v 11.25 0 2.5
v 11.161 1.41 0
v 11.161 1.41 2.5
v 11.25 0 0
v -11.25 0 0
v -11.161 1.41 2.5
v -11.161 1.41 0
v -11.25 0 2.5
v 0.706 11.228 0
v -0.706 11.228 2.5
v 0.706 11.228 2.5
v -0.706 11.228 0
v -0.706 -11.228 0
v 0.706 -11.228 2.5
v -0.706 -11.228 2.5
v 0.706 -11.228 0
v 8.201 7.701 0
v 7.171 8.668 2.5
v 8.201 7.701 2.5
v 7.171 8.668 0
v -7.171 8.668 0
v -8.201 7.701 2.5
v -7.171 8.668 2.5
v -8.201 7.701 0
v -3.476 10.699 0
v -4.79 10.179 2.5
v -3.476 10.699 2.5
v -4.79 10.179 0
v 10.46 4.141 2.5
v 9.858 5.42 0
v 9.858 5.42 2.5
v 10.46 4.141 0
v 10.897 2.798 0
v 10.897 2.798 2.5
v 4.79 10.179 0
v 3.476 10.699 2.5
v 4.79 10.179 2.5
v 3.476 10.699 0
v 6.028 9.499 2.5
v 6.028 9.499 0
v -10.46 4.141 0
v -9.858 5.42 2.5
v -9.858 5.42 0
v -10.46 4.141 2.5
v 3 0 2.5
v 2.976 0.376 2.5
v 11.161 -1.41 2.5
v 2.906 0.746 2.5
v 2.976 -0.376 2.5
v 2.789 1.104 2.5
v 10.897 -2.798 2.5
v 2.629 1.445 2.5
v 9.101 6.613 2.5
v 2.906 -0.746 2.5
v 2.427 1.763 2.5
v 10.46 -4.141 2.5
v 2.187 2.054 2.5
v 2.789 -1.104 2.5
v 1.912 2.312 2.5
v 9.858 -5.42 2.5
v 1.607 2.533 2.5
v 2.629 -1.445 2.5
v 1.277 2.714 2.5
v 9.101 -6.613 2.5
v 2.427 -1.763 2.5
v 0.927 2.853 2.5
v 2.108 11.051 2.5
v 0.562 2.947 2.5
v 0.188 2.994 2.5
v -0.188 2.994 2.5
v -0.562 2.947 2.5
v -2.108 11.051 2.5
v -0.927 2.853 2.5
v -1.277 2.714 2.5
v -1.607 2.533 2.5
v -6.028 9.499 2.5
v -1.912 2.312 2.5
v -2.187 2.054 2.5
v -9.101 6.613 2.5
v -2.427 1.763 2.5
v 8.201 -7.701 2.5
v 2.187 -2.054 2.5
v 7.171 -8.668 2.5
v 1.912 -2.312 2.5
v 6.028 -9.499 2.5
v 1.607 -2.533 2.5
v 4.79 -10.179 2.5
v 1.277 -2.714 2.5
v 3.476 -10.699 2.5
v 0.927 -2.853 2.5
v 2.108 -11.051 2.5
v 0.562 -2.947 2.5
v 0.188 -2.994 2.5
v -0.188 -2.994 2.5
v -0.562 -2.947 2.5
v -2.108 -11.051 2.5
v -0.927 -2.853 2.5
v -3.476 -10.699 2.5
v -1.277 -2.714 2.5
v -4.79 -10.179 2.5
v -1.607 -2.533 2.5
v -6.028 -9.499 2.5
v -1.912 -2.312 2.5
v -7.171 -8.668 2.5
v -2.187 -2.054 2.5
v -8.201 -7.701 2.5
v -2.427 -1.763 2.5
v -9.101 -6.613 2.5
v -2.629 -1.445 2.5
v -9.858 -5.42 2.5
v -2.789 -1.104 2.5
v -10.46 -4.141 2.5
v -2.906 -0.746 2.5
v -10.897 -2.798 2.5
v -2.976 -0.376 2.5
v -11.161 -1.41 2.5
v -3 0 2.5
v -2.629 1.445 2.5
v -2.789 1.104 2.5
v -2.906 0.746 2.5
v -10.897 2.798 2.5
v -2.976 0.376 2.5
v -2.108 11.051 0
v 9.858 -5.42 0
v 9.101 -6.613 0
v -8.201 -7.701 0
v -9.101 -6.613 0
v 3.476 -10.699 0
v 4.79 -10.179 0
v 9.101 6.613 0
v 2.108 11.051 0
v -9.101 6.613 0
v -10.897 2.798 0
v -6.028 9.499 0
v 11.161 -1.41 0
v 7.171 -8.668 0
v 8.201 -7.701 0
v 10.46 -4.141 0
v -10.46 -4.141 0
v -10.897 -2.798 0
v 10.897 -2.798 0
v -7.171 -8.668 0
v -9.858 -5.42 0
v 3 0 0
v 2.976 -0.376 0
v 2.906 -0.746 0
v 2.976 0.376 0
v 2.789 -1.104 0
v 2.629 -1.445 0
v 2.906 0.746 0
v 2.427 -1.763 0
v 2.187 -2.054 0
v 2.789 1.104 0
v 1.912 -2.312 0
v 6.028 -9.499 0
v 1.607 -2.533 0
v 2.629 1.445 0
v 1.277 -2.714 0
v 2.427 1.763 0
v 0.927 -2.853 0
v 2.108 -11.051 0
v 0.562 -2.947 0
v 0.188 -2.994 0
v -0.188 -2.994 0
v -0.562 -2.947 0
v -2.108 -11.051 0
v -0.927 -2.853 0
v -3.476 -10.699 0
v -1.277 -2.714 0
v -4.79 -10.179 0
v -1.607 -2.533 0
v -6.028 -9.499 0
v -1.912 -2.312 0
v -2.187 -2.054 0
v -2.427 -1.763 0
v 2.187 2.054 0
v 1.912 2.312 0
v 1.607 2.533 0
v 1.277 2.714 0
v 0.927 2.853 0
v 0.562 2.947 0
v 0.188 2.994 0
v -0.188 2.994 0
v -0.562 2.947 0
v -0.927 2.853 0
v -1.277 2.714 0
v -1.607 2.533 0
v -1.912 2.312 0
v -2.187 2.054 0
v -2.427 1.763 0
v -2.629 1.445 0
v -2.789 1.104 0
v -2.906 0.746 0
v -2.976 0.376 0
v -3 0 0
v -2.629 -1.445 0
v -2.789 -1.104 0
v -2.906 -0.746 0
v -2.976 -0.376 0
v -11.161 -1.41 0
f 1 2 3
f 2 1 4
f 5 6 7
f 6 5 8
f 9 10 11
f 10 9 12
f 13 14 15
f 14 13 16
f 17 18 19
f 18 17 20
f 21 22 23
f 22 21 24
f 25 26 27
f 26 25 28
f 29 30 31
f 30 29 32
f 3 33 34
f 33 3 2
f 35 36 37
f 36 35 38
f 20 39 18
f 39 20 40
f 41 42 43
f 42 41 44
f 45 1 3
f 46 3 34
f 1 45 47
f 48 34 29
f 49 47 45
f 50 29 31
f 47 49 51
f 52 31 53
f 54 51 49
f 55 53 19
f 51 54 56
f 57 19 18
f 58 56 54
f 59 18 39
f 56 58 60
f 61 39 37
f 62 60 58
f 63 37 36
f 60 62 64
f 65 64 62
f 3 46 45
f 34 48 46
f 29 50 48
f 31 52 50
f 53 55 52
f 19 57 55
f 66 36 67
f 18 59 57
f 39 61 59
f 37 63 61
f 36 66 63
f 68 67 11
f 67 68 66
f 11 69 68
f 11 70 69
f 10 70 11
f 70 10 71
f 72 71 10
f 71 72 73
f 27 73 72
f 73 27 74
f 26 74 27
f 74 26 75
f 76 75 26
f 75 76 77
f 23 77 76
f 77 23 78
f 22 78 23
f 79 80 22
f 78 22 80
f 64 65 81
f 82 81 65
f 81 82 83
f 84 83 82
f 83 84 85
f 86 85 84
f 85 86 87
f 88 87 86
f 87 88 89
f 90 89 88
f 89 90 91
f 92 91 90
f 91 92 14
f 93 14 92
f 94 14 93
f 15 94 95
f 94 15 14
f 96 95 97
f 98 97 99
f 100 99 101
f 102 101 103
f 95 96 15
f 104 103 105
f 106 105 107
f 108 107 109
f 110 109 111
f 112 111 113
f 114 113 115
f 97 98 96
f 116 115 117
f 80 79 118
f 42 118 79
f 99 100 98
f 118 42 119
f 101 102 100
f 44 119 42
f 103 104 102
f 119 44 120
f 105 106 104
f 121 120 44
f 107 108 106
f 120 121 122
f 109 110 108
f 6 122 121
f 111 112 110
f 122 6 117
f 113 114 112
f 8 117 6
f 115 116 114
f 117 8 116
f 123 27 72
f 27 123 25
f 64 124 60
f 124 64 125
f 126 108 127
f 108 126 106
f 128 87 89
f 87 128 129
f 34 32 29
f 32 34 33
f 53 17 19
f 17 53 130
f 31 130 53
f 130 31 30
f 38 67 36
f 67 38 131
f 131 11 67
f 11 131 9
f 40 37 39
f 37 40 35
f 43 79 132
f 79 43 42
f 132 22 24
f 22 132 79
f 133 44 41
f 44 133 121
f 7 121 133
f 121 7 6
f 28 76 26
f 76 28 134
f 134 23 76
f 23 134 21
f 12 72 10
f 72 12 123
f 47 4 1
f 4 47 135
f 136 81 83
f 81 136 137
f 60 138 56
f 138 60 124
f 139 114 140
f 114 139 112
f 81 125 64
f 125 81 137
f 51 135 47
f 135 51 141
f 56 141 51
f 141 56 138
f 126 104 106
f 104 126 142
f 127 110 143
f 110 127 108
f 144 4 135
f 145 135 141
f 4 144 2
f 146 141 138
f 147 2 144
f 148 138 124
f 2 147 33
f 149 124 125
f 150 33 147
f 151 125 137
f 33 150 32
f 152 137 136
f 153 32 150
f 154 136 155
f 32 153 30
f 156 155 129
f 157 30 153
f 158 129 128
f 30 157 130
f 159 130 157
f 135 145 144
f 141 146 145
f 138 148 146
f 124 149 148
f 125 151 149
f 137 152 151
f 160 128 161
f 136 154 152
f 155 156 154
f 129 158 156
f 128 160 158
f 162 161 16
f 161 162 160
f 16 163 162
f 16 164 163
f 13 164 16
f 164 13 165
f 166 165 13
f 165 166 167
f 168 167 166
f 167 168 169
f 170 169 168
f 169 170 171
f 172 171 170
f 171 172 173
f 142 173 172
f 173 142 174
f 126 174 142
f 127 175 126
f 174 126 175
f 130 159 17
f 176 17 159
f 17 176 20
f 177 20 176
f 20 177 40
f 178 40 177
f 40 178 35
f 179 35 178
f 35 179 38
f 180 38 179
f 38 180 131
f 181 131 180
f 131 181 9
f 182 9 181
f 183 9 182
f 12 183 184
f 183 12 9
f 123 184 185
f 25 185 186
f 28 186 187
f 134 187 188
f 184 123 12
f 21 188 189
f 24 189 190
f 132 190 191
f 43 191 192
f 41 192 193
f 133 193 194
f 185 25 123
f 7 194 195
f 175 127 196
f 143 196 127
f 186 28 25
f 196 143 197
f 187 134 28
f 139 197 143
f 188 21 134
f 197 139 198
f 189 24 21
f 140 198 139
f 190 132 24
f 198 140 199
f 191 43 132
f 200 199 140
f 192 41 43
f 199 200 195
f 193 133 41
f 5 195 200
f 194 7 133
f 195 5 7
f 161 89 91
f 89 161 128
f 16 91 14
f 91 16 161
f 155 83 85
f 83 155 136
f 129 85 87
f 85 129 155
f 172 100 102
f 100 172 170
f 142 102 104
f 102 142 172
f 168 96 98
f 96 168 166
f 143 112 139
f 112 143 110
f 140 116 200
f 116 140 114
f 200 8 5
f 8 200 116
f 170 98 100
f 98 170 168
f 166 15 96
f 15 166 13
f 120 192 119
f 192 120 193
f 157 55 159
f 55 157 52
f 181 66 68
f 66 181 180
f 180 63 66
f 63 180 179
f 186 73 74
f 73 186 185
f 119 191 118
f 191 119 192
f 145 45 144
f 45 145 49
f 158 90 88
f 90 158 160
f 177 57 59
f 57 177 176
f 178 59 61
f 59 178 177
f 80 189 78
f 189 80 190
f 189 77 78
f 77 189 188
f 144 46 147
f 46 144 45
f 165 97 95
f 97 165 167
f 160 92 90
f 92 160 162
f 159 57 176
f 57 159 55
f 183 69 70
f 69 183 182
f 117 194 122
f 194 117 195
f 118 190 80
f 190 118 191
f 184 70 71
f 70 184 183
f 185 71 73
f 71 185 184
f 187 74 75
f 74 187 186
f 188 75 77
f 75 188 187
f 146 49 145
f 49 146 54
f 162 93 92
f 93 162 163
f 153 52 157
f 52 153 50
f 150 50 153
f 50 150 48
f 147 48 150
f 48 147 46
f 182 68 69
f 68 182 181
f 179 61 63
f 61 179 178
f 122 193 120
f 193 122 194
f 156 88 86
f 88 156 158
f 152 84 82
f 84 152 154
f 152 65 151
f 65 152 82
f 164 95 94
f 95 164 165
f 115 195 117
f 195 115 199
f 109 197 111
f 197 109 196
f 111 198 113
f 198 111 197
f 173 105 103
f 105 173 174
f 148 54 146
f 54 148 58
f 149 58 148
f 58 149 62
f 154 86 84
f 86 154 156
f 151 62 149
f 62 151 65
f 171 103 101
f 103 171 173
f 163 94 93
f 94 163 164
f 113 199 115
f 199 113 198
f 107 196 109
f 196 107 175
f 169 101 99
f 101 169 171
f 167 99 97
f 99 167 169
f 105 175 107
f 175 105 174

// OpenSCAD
$fn=50;
difference() {
	cylinder(2.5,11.25,11.25);
	cylinder(2.5,3,3);
}
